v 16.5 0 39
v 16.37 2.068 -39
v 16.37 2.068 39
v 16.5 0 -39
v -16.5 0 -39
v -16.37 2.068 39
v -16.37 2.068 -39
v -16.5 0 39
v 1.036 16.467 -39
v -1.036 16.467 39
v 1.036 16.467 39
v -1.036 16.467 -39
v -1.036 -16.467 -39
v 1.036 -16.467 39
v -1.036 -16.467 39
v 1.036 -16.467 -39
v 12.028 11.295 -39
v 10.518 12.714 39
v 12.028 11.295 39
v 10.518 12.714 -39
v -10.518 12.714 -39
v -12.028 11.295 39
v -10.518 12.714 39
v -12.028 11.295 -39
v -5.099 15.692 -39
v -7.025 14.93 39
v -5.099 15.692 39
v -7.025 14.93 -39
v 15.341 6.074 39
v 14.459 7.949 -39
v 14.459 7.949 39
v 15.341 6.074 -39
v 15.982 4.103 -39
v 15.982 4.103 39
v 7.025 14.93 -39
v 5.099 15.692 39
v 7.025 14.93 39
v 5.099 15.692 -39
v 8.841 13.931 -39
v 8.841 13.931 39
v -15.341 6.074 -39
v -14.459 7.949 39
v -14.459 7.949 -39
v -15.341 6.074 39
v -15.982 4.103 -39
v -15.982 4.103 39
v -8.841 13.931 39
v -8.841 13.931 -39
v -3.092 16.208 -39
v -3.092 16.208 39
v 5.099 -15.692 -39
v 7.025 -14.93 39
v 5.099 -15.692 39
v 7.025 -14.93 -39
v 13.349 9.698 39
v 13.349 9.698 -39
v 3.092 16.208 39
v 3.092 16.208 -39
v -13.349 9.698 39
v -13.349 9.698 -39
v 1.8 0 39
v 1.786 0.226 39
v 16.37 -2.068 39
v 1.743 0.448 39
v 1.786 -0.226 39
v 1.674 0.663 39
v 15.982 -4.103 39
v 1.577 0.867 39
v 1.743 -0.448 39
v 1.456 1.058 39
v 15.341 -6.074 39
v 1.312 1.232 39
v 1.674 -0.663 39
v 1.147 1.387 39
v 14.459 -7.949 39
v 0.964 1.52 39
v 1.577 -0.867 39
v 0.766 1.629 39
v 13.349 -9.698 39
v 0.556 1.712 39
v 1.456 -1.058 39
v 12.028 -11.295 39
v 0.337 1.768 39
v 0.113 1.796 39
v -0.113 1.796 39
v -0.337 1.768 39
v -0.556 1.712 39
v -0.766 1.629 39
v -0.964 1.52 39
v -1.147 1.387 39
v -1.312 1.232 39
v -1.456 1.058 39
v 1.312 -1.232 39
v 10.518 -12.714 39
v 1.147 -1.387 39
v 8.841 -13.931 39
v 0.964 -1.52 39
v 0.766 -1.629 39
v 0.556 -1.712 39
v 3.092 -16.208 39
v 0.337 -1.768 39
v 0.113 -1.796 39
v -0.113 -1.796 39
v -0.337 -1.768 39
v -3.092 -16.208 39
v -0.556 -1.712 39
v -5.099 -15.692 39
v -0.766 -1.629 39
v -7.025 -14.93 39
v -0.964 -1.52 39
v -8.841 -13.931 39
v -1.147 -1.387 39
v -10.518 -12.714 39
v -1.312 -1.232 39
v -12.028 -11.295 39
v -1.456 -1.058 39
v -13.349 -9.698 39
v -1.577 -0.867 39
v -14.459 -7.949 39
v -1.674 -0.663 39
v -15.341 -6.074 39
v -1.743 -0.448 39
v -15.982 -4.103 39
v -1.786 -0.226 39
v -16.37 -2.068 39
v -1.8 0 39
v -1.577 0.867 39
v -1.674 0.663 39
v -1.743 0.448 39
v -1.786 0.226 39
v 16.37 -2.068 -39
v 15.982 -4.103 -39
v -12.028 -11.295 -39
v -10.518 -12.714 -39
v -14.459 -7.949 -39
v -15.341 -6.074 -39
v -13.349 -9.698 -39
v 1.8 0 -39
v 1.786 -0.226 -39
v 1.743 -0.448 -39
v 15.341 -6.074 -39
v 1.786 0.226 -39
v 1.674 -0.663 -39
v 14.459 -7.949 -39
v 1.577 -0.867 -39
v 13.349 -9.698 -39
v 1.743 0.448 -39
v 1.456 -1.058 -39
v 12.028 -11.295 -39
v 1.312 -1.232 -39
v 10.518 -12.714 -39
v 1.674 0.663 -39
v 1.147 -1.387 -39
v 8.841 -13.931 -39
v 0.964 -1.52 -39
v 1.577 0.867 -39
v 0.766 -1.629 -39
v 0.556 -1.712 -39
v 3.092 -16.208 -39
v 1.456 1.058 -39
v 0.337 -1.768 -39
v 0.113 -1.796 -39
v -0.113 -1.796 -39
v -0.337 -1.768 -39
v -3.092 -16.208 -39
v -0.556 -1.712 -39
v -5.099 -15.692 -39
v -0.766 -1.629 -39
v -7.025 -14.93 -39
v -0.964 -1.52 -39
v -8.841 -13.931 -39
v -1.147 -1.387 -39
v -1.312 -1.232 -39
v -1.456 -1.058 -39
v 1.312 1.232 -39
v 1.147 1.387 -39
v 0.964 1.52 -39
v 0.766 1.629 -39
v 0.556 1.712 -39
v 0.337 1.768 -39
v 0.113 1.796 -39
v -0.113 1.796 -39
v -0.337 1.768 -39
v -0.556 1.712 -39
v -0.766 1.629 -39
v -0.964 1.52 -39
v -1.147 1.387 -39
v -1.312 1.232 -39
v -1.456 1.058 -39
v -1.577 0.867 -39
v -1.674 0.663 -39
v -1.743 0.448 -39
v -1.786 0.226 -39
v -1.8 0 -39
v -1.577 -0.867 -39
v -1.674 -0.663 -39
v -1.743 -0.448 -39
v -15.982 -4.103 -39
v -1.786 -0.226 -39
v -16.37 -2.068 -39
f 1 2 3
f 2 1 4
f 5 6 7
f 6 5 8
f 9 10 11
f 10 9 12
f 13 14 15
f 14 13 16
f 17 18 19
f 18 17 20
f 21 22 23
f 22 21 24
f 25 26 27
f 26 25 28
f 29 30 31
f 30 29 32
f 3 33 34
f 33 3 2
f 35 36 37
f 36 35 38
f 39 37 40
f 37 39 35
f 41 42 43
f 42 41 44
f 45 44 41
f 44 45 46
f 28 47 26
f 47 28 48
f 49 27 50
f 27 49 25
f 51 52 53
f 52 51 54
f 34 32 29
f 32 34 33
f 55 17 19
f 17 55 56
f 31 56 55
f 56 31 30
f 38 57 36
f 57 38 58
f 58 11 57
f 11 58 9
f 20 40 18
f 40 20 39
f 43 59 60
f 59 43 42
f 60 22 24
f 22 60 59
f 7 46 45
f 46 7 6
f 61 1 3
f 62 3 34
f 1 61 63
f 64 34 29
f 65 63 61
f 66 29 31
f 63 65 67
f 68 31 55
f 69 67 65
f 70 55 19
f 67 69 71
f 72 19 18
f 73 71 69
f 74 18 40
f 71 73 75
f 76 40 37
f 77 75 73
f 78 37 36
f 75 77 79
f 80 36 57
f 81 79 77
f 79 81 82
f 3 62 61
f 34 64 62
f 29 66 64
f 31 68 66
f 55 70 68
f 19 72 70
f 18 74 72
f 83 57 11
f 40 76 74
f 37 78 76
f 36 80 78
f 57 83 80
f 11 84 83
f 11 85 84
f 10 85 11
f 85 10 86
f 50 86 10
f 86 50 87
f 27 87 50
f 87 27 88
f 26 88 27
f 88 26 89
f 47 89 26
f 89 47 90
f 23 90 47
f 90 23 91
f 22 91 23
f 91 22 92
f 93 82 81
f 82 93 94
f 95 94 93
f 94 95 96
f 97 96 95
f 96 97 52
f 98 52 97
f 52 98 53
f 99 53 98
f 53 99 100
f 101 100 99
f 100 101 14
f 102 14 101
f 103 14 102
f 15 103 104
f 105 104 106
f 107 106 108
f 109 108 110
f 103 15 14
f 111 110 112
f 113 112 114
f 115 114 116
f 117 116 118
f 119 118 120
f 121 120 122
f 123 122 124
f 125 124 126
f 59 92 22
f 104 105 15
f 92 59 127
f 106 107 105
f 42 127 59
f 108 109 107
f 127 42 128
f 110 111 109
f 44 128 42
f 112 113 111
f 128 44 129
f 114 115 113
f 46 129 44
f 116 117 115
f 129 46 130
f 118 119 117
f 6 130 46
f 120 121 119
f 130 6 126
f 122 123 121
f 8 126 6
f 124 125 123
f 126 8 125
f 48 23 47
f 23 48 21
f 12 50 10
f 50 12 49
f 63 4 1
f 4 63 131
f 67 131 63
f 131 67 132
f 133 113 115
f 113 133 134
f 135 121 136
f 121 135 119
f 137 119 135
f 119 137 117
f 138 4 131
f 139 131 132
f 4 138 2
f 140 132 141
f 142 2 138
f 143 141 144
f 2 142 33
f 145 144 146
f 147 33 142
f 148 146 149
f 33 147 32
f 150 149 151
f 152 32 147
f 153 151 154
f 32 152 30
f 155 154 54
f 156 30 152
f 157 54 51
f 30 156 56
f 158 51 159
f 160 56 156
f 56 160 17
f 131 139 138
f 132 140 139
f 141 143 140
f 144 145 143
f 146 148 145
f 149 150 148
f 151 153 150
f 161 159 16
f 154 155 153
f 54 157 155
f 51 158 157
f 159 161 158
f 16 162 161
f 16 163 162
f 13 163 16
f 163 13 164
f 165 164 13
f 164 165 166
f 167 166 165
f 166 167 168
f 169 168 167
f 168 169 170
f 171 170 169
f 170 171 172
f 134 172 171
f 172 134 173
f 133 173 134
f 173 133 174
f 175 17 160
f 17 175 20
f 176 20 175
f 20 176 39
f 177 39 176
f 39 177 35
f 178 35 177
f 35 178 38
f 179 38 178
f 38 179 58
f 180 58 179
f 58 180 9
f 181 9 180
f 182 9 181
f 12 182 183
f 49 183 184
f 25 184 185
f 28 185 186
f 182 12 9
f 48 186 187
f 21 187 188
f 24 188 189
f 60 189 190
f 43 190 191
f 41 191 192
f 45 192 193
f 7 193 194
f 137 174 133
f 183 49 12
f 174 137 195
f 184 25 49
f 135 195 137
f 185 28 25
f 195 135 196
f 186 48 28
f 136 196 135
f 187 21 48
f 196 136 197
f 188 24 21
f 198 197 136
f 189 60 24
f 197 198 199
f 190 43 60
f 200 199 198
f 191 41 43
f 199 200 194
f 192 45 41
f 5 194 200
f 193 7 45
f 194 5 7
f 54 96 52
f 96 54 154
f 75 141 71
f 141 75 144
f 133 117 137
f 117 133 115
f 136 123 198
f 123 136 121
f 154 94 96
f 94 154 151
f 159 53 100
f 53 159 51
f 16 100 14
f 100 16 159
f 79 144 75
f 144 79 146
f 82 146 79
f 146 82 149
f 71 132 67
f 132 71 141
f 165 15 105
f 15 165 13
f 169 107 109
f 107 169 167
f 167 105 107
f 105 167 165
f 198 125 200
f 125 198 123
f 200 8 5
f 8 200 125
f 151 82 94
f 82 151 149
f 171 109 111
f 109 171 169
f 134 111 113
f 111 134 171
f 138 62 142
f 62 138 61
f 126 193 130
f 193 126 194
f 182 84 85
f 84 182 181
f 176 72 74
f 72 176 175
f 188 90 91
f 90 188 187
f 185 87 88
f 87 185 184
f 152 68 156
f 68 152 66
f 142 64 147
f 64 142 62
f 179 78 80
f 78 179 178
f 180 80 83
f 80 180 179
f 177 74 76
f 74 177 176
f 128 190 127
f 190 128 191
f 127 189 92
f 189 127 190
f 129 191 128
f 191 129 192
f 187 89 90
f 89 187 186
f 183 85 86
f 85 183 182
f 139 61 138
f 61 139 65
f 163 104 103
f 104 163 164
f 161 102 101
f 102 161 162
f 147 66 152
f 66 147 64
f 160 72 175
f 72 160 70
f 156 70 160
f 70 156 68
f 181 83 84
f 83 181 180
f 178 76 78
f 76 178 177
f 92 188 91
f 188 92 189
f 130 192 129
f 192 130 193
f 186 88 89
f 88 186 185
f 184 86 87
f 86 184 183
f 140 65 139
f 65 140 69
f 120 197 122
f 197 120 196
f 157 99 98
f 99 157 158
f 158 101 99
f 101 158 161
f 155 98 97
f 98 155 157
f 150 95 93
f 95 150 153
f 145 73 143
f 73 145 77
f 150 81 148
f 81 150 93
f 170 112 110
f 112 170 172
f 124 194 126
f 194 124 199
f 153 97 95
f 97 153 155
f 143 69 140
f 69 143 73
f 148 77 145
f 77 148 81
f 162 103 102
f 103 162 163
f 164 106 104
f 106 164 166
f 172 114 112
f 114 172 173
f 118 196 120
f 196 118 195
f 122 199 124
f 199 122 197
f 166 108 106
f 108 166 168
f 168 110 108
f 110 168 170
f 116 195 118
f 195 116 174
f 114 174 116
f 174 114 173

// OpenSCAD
$fn = 50;


difference() {
	union() {
		translate(v = [0, 0, -39.0000000000]) {
			cylinder(h = 78, r = 16.5000000000);
		}
	}
	union() {
		translate(v = [0, 0, -100.0000000000]) {
			cylinder(h = 200, r = 1.8000000000);
		}
	}
}
